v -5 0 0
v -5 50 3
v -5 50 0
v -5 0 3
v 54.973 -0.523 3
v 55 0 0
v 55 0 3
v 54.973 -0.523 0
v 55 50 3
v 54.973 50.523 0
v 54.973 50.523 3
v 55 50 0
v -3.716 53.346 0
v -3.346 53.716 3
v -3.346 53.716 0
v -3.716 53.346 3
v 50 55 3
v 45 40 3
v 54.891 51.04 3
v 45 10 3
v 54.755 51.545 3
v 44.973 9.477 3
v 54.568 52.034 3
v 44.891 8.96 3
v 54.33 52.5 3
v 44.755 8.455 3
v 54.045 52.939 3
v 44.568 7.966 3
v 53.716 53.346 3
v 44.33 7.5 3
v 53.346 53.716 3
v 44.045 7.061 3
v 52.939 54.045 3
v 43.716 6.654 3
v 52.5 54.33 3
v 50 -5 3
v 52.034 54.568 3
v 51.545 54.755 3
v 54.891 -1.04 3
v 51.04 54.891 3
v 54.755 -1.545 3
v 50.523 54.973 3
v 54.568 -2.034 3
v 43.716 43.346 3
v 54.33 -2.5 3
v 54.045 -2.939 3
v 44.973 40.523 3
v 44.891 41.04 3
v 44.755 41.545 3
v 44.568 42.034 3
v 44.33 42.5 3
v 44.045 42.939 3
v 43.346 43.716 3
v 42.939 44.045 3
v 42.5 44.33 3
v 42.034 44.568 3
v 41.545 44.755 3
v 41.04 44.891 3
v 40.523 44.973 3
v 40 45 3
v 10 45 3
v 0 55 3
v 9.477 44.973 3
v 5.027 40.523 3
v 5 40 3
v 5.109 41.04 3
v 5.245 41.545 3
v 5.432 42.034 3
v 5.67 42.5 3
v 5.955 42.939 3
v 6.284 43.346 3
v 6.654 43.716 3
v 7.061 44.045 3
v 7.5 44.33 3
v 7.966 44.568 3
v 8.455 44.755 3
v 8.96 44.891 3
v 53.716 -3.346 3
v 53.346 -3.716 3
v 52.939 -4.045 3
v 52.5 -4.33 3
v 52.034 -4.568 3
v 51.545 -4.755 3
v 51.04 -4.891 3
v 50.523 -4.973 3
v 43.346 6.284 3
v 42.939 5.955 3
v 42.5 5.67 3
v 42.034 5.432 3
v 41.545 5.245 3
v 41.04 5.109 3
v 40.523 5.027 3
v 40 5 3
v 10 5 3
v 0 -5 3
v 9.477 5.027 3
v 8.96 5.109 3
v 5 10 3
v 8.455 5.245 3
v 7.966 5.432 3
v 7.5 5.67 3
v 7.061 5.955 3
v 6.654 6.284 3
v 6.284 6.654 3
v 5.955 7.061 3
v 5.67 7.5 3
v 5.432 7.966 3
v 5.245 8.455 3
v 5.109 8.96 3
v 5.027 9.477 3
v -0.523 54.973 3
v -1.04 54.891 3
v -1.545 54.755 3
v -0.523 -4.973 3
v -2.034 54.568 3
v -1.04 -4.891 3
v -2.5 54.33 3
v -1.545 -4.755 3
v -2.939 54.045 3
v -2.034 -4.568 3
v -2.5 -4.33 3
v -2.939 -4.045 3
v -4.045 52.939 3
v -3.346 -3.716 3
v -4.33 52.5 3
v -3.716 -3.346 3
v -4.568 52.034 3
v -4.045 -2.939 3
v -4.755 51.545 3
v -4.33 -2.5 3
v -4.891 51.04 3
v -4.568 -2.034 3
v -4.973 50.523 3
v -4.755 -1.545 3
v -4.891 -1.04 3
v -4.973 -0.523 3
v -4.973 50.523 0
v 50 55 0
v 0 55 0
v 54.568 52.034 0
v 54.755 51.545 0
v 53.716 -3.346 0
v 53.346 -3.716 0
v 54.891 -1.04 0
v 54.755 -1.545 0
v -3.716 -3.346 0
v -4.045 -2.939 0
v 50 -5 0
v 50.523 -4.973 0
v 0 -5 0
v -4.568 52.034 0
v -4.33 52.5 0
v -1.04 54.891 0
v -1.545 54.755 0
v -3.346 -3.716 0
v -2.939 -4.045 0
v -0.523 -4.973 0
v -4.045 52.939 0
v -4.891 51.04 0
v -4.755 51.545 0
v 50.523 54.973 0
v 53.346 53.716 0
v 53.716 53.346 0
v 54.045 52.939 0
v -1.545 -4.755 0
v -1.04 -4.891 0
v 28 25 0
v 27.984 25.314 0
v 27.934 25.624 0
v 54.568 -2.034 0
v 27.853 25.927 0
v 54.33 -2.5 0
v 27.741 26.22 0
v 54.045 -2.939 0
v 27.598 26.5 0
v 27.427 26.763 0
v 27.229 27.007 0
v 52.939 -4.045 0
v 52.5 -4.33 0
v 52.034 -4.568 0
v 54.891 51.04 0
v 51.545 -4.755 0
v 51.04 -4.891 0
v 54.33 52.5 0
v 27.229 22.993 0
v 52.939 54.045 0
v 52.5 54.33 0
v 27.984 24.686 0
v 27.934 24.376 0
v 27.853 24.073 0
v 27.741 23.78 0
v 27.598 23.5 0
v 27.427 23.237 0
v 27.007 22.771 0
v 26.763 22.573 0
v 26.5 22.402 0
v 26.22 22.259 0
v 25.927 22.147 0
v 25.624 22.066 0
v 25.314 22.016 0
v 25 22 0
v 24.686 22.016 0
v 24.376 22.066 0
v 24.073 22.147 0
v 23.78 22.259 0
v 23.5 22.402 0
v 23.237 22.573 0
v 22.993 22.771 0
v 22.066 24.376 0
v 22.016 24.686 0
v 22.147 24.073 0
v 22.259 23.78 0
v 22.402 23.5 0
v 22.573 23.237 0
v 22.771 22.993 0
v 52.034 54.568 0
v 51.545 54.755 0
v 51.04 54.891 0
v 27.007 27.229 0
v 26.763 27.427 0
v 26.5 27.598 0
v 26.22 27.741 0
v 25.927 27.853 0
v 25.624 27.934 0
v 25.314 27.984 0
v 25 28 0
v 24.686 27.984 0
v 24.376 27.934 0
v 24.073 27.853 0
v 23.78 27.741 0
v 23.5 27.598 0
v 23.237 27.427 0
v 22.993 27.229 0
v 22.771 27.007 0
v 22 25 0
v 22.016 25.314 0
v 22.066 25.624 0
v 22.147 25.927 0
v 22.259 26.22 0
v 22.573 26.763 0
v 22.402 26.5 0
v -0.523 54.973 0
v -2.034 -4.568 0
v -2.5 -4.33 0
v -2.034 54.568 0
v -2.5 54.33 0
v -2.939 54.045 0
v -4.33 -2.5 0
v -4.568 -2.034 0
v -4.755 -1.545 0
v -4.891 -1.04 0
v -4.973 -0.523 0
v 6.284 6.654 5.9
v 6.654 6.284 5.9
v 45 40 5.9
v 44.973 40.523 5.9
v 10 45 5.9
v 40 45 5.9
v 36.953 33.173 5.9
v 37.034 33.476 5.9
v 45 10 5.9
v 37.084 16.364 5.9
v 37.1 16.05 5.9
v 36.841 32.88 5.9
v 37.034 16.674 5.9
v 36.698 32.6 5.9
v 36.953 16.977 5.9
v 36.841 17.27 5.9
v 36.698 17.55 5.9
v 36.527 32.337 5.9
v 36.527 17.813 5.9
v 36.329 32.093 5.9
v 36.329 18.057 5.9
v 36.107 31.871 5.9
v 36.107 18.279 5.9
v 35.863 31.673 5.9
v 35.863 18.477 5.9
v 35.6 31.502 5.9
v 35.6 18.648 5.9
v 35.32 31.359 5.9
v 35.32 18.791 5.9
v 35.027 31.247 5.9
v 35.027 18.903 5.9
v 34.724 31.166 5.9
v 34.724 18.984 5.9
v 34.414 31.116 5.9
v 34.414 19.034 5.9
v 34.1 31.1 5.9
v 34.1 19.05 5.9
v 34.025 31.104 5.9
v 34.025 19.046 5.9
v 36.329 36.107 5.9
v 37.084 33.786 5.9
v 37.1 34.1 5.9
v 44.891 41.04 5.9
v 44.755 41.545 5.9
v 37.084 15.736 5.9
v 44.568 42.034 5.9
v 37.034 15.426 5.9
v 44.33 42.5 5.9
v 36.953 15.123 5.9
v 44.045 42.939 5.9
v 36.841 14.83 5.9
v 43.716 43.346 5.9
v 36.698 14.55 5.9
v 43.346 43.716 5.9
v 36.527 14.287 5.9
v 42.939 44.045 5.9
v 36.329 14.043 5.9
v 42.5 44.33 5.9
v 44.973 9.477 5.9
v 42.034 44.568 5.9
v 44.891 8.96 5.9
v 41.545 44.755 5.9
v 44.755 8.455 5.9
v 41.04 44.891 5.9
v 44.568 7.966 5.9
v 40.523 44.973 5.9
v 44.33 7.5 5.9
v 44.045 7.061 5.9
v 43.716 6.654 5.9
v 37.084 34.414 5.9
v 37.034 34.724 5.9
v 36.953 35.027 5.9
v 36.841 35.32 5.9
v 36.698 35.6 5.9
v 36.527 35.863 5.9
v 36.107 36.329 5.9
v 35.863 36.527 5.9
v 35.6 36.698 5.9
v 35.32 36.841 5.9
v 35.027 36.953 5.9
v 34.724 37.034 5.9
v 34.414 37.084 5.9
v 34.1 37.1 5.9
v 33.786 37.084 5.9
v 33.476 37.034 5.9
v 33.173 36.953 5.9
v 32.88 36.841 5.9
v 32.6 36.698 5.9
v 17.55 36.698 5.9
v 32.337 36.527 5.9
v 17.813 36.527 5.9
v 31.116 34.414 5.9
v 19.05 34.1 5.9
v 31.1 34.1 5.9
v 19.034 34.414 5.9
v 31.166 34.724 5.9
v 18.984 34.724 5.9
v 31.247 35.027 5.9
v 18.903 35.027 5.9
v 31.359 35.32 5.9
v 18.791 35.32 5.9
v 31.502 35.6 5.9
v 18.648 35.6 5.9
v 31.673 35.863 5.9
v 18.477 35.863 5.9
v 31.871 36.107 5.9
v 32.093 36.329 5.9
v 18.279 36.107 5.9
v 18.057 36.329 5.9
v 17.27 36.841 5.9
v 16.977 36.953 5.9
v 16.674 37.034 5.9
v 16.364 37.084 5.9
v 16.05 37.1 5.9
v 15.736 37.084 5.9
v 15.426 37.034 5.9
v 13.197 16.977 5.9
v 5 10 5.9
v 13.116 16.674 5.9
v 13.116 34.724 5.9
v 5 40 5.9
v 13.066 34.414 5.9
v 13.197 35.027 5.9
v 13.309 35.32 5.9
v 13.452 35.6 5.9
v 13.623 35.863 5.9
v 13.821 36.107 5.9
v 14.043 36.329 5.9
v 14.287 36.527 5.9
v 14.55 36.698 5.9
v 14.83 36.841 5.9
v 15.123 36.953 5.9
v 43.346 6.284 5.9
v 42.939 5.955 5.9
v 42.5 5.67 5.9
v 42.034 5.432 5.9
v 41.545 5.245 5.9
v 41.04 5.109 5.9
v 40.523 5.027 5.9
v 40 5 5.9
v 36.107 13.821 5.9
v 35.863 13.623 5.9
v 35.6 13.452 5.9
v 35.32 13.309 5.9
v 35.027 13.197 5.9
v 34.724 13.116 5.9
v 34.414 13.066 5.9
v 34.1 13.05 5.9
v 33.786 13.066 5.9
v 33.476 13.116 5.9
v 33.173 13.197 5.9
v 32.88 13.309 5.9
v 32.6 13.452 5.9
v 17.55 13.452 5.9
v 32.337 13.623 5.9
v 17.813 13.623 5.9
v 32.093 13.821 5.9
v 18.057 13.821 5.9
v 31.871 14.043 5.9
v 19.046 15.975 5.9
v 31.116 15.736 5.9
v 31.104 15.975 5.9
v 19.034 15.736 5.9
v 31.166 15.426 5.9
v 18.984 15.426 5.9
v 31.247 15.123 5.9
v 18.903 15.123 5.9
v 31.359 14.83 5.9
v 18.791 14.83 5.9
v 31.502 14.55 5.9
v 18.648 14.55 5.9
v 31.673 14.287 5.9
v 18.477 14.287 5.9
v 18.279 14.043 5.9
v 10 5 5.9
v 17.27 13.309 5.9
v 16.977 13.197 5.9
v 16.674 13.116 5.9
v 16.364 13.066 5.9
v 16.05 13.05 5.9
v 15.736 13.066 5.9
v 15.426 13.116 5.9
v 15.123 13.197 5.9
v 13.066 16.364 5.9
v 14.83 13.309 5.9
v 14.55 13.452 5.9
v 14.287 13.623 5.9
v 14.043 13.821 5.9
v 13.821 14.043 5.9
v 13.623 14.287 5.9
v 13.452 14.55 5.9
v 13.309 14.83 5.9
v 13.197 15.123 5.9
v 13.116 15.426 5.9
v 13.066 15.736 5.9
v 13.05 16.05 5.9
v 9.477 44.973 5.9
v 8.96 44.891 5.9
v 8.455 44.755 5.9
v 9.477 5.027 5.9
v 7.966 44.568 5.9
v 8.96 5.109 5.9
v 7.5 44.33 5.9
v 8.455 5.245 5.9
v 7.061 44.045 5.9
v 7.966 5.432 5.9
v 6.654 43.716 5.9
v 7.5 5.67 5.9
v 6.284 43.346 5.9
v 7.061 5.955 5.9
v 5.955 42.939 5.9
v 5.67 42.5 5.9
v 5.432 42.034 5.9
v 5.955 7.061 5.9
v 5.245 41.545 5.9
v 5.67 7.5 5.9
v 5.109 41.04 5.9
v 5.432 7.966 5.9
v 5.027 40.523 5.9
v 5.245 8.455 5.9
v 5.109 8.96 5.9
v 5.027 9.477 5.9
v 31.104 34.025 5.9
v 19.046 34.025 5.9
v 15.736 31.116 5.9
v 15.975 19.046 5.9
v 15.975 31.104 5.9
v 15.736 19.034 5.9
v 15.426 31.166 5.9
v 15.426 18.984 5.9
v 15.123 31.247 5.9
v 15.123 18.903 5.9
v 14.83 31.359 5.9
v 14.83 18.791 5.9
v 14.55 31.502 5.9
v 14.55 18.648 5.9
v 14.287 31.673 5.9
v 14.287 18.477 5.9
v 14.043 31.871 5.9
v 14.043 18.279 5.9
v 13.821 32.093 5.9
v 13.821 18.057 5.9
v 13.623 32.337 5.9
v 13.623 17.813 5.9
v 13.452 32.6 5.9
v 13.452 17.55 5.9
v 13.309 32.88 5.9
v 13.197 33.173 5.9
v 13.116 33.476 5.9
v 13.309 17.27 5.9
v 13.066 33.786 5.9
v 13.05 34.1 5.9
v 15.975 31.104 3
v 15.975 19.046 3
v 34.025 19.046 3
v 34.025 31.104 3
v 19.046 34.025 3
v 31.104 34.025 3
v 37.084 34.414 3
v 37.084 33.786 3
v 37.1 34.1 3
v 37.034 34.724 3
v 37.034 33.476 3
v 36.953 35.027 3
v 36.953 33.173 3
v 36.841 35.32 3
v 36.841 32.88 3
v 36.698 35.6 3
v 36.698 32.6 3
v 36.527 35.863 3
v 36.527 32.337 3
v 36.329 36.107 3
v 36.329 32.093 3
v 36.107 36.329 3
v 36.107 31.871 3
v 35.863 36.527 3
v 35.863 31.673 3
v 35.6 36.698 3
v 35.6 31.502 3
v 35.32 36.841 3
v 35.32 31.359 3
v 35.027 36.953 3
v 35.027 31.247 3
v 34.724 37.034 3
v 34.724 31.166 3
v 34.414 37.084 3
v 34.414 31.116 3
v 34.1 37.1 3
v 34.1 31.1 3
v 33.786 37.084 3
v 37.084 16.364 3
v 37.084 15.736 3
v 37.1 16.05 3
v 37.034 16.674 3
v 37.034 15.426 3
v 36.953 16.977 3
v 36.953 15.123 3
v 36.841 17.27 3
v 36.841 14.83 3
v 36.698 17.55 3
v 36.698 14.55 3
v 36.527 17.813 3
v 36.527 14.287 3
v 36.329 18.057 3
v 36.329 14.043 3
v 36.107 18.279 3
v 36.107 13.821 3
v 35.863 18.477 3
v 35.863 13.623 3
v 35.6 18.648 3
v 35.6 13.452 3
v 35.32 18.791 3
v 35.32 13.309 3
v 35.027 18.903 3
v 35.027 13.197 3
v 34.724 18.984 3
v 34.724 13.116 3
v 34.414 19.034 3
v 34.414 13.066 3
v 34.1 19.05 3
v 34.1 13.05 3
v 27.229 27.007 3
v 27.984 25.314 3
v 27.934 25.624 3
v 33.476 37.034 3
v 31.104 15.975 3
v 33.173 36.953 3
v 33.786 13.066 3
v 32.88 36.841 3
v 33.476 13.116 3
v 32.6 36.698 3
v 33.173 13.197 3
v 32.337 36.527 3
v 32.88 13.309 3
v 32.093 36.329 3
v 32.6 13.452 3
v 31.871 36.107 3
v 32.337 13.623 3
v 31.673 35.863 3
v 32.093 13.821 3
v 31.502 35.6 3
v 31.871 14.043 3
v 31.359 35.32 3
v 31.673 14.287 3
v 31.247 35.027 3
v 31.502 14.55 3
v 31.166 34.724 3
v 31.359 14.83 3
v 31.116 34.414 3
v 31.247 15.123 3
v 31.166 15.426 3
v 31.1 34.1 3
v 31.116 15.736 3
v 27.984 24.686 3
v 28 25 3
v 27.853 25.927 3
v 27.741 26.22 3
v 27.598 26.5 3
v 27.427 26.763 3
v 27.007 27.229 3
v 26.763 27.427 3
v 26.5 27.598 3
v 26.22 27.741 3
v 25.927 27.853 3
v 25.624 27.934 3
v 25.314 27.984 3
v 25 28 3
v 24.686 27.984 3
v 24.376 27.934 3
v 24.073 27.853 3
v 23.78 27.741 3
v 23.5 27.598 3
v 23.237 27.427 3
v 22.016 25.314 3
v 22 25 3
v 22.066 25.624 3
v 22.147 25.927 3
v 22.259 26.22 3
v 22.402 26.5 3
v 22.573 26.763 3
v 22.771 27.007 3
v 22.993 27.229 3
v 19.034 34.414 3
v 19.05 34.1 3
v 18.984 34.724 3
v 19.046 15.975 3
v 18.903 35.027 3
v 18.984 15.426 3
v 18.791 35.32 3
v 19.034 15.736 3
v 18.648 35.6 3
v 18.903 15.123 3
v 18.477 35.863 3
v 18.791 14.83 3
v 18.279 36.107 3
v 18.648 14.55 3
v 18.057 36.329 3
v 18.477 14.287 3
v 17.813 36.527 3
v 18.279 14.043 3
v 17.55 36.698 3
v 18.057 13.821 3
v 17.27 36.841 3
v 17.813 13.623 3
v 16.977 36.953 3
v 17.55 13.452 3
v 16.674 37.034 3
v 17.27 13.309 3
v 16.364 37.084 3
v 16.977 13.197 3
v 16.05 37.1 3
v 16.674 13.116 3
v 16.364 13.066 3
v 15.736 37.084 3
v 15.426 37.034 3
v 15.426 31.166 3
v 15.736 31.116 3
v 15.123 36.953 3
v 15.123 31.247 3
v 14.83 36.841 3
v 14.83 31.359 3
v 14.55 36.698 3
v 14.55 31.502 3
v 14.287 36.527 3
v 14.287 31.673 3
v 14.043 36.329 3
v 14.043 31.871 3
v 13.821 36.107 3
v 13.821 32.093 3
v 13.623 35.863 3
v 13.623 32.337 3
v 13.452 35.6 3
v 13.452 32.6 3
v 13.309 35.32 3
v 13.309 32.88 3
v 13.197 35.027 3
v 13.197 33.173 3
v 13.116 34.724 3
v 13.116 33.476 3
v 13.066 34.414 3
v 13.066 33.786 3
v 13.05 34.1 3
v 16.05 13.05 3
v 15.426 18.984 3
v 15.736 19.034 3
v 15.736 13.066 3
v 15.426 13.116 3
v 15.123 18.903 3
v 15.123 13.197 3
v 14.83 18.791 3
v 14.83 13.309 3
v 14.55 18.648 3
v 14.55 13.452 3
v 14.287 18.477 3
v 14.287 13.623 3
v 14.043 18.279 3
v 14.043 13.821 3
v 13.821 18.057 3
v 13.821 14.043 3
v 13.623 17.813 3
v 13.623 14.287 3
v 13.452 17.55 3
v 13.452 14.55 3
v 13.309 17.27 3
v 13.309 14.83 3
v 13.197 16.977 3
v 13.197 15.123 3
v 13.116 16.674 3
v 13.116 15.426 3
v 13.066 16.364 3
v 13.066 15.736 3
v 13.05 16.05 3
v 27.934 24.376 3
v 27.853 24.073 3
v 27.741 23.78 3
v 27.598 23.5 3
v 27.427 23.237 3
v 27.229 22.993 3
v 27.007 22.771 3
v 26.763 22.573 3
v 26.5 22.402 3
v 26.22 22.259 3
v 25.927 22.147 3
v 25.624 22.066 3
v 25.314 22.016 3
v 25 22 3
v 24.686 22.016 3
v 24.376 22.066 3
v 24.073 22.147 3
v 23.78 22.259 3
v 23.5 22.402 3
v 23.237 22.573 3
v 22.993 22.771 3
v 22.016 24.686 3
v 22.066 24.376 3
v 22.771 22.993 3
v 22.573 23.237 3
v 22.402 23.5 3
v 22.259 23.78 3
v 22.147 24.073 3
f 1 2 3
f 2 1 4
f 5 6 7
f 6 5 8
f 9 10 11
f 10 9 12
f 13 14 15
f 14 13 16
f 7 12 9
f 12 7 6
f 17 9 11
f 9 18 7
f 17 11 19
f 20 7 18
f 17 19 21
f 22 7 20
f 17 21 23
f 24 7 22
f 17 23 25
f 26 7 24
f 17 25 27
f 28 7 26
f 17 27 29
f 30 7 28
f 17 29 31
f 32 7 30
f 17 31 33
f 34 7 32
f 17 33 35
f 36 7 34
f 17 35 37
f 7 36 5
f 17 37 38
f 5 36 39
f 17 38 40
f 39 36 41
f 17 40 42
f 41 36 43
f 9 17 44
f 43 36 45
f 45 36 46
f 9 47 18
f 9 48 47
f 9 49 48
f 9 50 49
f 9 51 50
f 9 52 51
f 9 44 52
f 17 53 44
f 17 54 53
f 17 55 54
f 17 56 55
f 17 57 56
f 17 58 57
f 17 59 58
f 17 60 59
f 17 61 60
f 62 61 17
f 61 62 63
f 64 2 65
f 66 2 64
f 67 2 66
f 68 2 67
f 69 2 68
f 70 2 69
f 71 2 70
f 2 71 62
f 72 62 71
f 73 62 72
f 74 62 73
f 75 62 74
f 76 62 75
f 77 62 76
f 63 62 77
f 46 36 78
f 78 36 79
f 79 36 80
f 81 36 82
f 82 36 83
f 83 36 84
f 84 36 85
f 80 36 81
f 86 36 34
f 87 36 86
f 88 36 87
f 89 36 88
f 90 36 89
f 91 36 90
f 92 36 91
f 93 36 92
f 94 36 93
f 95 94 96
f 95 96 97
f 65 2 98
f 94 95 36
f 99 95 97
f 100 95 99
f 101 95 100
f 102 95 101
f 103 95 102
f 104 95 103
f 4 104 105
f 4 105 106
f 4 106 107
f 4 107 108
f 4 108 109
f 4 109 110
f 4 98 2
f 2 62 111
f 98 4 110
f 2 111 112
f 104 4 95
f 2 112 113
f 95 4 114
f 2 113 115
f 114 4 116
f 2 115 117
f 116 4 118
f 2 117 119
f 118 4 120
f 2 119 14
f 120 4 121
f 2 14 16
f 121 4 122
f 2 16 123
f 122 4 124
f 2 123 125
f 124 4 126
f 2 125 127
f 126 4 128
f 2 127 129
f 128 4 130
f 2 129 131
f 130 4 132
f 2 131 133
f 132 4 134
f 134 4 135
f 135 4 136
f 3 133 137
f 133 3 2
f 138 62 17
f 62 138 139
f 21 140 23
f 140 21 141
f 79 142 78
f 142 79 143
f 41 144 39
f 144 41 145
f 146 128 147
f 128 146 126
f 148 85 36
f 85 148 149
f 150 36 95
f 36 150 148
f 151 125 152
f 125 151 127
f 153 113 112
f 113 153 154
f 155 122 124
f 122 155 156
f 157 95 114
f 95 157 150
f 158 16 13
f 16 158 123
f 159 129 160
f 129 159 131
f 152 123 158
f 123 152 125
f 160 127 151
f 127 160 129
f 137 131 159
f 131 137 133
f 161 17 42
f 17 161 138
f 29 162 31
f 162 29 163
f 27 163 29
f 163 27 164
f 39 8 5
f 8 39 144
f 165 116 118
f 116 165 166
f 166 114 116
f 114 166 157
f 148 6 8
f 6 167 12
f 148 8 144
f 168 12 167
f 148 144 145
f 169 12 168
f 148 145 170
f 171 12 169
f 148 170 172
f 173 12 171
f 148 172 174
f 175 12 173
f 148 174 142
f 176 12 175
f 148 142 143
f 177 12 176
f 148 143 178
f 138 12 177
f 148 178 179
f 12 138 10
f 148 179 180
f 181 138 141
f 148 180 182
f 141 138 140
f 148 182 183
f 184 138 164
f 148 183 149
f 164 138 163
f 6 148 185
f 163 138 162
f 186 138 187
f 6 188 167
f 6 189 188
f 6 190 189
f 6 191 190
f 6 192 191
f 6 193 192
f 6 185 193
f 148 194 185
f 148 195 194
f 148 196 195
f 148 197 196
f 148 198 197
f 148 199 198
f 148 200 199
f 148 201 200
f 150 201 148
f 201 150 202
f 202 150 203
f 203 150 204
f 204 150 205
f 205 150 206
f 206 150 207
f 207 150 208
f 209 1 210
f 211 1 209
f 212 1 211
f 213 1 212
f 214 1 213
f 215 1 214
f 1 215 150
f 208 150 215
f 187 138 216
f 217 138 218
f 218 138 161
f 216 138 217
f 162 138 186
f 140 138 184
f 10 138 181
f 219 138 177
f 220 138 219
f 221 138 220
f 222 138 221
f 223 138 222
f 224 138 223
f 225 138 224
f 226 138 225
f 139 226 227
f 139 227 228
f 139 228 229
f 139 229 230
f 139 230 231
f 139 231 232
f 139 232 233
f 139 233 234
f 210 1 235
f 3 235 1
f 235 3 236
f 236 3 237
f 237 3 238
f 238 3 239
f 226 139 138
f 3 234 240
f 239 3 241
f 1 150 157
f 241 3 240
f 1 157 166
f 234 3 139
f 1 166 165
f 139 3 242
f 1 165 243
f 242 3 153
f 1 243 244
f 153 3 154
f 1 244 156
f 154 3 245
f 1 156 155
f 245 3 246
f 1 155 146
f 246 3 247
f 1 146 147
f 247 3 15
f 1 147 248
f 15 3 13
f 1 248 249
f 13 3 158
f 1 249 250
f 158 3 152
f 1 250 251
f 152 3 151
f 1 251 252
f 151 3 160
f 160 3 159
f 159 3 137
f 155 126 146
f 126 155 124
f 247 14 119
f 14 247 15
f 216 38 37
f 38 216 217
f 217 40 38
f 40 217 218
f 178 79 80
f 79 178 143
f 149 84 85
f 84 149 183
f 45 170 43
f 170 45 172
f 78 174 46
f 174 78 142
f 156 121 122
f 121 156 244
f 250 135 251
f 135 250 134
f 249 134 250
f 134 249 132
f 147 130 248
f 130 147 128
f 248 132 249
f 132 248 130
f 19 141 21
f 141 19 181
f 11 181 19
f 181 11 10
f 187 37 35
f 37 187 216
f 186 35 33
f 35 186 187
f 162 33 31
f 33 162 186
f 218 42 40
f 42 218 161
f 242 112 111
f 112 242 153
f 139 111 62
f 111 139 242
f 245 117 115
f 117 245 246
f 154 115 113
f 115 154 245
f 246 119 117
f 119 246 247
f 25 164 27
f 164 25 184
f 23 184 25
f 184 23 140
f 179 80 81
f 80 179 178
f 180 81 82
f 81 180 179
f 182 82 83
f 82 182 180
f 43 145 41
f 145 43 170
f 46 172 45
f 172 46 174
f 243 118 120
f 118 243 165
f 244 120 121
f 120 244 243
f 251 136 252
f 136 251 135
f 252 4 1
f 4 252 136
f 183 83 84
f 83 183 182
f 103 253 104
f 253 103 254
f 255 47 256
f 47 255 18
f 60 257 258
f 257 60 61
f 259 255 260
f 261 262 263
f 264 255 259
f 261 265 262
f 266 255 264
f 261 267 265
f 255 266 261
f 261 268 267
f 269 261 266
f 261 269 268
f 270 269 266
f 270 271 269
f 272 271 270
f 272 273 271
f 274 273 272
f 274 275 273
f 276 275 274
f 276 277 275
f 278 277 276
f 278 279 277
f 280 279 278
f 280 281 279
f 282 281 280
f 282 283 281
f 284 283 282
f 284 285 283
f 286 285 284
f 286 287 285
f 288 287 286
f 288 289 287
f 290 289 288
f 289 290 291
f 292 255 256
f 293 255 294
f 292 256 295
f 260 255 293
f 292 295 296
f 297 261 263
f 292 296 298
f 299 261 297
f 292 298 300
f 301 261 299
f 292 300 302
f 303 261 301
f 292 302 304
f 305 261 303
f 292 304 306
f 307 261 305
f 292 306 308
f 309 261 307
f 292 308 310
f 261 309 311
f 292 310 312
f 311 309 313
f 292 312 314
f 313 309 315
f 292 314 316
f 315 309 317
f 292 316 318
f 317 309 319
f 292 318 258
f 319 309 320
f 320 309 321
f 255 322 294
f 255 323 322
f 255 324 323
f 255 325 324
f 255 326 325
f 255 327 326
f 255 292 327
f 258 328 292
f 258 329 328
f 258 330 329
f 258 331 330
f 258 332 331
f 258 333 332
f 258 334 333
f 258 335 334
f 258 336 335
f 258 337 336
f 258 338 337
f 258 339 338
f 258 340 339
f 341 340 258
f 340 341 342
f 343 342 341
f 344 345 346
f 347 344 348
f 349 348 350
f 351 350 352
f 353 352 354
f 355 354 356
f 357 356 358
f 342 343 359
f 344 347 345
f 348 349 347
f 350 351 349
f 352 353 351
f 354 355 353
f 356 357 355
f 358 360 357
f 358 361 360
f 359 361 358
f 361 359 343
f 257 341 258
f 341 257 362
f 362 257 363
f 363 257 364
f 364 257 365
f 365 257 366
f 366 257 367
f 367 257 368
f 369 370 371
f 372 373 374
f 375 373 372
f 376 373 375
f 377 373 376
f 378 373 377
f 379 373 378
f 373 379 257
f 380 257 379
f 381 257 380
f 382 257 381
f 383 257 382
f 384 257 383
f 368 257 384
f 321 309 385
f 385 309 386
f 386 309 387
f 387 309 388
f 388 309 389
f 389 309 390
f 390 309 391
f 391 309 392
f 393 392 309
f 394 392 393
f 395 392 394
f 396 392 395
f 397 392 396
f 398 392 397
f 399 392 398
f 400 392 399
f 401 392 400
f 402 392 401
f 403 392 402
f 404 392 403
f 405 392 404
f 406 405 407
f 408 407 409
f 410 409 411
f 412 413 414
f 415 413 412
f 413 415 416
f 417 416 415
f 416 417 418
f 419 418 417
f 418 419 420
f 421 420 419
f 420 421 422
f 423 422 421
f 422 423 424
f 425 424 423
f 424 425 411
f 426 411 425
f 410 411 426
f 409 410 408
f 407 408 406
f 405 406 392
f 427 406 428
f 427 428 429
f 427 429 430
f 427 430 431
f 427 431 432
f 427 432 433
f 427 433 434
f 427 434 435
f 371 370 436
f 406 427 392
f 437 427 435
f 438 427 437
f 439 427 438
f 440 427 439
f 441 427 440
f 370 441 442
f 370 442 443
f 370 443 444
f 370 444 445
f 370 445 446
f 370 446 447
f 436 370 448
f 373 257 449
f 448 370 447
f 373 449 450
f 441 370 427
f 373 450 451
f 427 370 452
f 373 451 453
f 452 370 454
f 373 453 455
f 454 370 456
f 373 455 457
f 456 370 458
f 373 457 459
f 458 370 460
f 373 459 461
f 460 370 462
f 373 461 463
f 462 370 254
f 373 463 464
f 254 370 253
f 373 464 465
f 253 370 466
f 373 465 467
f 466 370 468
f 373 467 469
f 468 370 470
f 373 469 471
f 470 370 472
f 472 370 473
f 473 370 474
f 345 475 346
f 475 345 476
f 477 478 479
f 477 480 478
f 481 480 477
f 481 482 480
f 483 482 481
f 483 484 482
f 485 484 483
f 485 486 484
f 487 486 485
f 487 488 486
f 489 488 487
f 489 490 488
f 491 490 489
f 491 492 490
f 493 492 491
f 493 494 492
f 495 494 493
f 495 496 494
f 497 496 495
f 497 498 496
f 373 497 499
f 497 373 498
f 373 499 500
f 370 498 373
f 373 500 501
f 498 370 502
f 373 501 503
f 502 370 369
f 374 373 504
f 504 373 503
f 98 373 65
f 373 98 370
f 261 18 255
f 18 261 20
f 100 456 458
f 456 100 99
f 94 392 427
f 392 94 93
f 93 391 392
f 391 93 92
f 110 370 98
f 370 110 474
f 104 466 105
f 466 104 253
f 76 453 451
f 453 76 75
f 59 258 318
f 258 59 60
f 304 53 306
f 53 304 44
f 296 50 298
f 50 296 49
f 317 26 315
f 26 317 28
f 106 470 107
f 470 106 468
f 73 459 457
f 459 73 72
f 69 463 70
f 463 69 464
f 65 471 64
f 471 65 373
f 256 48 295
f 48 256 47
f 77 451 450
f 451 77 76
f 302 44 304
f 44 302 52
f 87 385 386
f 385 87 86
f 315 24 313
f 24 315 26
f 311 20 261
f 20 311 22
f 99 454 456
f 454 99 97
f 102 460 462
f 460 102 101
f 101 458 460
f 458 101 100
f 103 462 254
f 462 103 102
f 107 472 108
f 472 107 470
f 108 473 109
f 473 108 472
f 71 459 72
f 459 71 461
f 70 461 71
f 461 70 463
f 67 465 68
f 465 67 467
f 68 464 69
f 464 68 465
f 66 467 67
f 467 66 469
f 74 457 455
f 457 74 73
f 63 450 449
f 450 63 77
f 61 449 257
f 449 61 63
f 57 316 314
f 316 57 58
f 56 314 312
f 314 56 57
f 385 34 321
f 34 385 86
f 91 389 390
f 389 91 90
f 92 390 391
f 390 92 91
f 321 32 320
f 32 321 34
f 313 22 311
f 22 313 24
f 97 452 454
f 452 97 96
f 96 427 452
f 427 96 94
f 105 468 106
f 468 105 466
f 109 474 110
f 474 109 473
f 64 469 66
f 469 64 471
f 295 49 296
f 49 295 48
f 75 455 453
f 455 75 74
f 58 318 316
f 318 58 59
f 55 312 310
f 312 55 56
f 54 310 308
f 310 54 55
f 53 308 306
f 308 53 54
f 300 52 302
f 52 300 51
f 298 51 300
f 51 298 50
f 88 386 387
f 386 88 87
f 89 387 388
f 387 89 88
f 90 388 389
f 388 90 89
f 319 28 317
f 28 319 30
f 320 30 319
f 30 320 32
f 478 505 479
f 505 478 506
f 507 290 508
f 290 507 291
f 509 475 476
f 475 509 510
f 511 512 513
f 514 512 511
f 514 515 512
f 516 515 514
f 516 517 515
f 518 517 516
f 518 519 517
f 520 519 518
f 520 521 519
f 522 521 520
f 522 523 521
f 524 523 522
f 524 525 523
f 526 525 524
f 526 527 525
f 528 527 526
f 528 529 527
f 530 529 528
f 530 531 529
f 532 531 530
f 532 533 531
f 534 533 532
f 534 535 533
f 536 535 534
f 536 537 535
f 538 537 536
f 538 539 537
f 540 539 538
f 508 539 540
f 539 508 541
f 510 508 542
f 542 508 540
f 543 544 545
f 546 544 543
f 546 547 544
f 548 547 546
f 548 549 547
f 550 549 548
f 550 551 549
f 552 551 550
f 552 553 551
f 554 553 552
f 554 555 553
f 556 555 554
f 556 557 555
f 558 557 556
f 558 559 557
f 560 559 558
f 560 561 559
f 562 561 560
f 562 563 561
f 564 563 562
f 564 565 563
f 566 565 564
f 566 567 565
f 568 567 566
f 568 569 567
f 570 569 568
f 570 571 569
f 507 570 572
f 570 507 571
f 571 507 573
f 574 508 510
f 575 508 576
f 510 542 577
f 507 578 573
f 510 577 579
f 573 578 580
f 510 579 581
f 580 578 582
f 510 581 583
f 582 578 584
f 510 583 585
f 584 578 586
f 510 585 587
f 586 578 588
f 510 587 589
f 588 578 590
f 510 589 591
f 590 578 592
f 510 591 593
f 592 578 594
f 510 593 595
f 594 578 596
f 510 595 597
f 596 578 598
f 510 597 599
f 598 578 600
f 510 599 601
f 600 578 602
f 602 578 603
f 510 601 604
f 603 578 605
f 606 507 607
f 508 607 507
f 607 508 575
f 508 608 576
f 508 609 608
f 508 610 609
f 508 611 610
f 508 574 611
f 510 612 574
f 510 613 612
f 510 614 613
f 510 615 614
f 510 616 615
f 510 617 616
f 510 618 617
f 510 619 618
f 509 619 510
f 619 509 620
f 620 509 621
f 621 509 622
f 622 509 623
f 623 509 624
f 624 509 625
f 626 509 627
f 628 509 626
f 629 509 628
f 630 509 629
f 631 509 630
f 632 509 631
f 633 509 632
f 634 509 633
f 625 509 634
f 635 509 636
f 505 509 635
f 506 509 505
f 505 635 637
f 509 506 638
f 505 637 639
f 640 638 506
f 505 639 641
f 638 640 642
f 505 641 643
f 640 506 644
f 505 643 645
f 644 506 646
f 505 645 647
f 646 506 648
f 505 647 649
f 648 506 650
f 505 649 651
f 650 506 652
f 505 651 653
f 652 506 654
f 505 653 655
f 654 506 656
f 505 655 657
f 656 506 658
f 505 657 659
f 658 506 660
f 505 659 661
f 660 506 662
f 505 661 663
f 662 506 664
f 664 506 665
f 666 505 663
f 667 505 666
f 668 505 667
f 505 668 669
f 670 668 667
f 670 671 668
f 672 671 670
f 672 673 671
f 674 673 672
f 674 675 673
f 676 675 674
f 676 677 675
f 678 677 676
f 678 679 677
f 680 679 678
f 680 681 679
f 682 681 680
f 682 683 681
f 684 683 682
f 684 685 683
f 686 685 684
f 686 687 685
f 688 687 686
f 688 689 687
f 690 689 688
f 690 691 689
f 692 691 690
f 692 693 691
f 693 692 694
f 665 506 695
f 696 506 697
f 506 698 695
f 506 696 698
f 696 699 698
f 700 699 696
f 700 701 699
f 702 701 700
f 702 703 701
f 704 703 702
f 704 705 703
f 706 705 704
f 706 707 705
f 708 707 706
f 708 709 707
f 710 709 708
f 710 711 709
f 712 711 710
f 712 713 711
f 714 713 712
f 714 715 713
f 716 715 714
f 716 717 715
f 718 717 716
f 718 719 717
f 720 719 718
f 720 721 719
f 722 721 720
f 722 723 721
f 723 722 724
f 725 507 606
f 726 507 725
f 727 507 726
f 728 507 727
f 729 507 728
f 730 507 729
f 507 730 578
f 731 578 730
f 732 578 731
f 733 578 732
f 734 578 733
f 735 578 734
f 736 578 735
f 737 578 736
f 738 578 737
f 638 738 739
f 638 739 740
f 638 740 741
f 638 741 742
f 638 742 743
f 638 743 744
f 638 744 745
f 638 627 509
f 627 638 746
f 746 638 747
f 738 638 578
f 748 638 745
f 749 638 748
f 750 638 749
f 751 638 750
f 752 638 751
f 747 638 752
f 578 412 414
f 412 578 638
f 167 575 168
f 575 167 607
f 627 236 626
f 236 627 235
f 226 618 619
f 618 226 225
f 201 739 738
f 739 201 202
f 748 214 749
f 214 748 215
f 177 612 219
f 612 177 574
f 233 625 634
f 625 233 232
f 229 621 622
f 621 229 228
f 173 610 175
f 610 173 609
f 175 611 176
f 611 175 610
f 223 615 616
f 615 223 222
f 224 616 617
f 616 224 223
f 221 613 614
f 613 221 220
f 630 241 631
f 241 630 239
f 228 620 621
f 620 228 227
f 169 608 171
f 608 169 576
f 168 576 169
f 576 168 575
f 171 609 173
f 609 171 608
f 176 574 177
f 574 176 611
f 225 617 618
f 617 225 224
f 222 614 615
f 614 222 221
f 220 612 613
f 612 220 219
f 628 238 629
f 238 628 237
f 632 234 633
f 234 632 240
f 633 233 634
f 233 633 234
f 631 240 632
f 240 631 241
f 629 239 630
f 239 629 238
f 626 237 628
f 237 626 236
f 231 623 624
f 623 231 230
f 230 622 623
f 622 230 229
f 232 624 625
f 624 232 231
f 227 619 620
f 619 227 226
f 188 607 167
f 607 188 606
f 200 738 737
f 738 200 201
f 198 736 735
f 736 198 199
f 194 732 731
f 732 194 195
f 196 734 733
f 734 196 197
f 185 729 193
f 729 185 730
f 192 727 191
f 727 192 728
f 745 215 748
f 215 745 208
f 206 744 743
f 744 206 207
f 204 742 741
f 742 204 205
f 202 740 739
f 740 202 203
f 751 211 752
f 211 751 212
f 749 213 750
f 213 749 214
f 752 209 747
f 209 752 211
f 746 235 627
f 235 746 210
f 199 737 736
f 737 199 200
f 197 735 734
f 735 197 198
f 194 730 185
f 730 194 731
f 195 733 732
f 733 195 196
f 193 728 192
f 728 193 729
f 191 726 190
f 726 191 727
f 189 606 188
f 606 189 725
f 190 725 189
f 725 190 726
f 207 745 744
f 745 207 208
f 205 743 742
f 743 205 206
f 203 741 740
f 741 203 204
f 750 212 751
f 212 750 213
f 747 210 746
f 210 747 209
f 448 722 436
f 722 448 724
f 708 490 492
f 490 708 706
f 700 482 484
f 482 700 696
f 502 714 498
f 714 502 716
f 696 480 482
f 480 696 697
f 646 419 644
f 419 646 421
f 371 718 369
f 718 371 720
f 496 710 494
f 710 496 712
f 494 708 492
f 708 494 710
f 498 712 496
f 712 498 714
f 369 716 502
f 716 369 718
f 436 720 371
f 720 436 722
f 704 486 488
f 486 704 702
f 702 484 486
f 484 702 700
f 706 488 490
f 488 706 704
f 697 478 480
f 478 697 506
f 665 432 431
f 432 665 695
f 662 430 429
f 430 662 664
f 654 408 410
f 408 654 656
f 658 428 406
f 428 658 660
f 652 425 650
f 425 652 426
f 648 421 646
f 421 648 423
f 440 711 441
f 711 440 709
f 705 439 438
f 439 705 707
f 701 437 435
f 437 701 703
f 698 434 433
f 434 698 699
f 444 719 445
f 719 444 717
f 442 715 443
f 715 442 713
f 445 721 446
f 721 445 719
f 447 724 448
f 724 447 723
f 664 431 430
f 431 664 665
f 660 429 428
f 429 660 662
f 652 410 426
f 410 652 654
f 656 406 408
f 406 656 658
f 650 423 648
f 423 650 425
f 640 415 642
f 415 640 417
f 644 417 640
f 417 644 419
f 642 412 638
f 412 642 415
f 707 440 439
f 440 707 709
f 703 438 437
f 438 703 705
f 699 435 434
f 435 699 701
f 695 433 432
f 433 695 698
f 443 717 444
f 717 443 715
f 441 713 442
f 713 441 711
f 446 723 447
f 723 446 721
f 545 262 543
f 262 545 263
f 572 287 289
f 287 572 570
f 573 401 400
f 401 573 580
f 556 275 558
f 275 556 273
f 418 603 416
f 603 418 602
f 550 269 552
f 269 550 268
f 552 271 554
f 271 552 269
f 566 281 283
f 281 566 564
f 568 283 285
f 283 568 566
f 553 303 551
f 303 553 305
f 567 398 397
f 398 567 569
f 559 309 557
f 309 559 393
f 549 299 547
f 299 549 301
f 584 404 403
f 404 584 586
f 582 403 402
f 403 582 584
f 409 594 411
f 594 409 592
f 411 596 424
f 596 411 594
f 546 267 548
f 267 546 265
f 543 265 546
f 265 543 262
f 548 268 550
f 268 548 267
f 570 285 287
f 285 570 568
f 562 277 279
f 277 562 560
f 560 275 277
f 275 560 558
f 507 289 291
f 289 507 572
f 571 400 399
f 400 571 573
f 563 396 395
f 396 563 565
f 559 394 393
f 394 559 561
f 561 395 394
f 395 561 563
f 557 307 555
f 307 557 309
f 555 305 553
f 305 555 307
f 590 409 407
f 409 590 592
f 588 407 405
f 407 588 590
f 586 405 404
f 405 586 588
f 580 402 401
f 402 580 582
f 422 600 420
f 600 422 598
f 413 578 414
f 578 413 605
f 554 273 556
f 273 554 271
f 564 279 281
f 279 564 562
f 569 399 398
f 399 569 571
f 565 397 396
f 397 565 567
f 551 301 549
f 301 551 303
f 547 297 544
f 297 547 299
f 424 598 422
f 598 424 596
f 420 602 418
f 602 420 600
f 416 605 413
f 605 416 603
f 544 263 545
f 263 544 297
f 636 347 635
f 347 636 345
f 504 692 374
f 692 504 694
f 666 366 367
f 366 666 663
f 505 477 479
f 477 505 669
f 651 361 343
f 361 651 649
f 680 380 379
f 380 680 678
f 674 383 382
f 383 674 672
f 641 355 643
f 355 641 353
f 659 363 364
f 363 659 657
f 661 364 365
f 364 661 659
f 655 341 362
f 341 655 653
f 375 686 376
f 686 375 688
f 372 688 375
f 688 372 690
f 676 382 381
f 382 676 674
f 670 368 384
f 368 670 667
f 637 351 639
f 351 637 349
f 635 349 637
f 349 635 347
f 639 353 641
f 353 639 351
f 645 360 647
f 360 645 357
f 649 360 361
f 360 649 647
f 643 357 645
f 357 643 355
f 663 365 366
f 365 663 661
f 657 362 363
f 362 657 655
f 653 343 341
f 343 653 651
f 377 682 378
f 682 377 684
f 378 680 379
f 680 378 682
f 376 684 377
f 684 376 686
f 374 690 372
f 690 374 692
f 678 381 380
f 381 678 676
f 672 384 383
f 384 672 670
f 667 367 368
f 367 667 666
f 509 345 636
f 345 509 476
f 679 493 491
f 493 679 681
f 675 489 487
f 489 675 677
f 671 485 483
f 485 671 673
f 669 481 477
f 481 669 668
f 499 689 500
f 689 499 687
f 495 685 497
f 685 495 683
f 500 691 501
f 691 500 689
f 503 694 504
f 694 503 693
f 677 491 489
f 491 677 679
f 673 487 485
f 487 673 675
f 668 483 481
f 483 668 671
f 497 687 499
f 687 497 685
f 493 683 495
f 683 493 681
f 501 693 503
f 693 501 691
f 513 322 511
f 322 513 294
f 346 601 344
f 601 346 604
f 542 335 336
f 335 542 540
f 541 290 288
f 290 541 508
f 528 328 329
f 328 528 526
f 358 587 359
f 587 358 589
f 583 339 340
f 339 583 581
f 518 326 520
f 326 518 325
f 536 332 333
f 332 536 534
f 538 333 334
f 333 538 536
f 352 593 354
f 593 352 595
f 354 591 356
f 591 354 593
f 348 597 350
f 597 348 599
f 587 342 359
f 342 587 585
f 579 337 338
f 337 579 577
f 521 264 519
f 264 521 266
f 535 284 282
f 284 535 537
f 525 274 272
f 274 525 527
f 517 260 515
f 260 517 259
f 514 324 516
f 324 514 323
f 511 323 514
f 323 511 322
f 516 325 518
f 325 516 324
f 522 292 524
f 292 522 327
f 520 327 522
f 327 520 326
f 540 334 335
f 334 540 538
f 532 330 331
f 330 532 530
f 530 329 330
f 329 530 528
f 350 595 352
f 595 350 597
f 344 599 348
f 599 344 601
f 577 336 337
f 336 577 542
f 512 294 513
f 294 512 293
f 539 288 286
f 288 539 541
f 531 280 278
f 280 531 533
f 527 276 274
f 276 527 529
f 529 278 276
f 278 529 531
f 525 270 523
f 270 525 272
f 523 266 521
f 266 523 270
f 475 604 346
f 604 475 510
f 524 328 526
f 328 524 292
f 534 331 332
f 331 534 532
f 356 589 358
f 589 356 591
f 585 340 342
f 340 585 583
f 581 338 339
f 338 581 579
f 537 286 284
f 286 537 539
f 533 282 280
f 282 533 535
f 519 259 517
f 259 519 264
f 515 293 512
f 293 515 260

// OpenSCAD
$fn=60;
difference() {
	union() {
		// Form the base
		hull() {
			cylinder(h=3, r=5);
			translate([50, 0, 0])
			cylinder(h=3, r=5);
			translate([0, 50, 0])
			cylinder(h=3, r=5);
			translate([50, 50, 0])
			cylinder(h=3, r=5);
			}
		// Form the stepped "stage"
		translate([10, 10, 2.9])
		hull() {
			cylinder(h=3, r=5);
			translate([30, 0, 0])
			cylinder(h=3, r=5);
			translate([0, 30, 0])
			cylinder(h=3, r=5);
			translate([30, 30, 0])
			cylinder(h=3, r=5);
		}
	}
	union() {
	translate([25, 25, 13]) {
		// Hole for the keycap seat
		cube([18.05, 18.05, 20], center=true);
		translate([0, 0, -10])
		// Center hole
		cylinder(r=3, h=20, center=true);
	}
	// Corner relief for keycap
	translate([16.05, 16.05, 3]) {
		cylinder(h=3, r=3);
		translate([18.05, 0, 0])
		cylinder(h=3, r=3);
		translate([0, 18.05, 0])
		cylinder(h=3, r=3);
		translate([18.05, 18.05, 0])
		cylinder(h=3, r=3);
		}
	}
}
